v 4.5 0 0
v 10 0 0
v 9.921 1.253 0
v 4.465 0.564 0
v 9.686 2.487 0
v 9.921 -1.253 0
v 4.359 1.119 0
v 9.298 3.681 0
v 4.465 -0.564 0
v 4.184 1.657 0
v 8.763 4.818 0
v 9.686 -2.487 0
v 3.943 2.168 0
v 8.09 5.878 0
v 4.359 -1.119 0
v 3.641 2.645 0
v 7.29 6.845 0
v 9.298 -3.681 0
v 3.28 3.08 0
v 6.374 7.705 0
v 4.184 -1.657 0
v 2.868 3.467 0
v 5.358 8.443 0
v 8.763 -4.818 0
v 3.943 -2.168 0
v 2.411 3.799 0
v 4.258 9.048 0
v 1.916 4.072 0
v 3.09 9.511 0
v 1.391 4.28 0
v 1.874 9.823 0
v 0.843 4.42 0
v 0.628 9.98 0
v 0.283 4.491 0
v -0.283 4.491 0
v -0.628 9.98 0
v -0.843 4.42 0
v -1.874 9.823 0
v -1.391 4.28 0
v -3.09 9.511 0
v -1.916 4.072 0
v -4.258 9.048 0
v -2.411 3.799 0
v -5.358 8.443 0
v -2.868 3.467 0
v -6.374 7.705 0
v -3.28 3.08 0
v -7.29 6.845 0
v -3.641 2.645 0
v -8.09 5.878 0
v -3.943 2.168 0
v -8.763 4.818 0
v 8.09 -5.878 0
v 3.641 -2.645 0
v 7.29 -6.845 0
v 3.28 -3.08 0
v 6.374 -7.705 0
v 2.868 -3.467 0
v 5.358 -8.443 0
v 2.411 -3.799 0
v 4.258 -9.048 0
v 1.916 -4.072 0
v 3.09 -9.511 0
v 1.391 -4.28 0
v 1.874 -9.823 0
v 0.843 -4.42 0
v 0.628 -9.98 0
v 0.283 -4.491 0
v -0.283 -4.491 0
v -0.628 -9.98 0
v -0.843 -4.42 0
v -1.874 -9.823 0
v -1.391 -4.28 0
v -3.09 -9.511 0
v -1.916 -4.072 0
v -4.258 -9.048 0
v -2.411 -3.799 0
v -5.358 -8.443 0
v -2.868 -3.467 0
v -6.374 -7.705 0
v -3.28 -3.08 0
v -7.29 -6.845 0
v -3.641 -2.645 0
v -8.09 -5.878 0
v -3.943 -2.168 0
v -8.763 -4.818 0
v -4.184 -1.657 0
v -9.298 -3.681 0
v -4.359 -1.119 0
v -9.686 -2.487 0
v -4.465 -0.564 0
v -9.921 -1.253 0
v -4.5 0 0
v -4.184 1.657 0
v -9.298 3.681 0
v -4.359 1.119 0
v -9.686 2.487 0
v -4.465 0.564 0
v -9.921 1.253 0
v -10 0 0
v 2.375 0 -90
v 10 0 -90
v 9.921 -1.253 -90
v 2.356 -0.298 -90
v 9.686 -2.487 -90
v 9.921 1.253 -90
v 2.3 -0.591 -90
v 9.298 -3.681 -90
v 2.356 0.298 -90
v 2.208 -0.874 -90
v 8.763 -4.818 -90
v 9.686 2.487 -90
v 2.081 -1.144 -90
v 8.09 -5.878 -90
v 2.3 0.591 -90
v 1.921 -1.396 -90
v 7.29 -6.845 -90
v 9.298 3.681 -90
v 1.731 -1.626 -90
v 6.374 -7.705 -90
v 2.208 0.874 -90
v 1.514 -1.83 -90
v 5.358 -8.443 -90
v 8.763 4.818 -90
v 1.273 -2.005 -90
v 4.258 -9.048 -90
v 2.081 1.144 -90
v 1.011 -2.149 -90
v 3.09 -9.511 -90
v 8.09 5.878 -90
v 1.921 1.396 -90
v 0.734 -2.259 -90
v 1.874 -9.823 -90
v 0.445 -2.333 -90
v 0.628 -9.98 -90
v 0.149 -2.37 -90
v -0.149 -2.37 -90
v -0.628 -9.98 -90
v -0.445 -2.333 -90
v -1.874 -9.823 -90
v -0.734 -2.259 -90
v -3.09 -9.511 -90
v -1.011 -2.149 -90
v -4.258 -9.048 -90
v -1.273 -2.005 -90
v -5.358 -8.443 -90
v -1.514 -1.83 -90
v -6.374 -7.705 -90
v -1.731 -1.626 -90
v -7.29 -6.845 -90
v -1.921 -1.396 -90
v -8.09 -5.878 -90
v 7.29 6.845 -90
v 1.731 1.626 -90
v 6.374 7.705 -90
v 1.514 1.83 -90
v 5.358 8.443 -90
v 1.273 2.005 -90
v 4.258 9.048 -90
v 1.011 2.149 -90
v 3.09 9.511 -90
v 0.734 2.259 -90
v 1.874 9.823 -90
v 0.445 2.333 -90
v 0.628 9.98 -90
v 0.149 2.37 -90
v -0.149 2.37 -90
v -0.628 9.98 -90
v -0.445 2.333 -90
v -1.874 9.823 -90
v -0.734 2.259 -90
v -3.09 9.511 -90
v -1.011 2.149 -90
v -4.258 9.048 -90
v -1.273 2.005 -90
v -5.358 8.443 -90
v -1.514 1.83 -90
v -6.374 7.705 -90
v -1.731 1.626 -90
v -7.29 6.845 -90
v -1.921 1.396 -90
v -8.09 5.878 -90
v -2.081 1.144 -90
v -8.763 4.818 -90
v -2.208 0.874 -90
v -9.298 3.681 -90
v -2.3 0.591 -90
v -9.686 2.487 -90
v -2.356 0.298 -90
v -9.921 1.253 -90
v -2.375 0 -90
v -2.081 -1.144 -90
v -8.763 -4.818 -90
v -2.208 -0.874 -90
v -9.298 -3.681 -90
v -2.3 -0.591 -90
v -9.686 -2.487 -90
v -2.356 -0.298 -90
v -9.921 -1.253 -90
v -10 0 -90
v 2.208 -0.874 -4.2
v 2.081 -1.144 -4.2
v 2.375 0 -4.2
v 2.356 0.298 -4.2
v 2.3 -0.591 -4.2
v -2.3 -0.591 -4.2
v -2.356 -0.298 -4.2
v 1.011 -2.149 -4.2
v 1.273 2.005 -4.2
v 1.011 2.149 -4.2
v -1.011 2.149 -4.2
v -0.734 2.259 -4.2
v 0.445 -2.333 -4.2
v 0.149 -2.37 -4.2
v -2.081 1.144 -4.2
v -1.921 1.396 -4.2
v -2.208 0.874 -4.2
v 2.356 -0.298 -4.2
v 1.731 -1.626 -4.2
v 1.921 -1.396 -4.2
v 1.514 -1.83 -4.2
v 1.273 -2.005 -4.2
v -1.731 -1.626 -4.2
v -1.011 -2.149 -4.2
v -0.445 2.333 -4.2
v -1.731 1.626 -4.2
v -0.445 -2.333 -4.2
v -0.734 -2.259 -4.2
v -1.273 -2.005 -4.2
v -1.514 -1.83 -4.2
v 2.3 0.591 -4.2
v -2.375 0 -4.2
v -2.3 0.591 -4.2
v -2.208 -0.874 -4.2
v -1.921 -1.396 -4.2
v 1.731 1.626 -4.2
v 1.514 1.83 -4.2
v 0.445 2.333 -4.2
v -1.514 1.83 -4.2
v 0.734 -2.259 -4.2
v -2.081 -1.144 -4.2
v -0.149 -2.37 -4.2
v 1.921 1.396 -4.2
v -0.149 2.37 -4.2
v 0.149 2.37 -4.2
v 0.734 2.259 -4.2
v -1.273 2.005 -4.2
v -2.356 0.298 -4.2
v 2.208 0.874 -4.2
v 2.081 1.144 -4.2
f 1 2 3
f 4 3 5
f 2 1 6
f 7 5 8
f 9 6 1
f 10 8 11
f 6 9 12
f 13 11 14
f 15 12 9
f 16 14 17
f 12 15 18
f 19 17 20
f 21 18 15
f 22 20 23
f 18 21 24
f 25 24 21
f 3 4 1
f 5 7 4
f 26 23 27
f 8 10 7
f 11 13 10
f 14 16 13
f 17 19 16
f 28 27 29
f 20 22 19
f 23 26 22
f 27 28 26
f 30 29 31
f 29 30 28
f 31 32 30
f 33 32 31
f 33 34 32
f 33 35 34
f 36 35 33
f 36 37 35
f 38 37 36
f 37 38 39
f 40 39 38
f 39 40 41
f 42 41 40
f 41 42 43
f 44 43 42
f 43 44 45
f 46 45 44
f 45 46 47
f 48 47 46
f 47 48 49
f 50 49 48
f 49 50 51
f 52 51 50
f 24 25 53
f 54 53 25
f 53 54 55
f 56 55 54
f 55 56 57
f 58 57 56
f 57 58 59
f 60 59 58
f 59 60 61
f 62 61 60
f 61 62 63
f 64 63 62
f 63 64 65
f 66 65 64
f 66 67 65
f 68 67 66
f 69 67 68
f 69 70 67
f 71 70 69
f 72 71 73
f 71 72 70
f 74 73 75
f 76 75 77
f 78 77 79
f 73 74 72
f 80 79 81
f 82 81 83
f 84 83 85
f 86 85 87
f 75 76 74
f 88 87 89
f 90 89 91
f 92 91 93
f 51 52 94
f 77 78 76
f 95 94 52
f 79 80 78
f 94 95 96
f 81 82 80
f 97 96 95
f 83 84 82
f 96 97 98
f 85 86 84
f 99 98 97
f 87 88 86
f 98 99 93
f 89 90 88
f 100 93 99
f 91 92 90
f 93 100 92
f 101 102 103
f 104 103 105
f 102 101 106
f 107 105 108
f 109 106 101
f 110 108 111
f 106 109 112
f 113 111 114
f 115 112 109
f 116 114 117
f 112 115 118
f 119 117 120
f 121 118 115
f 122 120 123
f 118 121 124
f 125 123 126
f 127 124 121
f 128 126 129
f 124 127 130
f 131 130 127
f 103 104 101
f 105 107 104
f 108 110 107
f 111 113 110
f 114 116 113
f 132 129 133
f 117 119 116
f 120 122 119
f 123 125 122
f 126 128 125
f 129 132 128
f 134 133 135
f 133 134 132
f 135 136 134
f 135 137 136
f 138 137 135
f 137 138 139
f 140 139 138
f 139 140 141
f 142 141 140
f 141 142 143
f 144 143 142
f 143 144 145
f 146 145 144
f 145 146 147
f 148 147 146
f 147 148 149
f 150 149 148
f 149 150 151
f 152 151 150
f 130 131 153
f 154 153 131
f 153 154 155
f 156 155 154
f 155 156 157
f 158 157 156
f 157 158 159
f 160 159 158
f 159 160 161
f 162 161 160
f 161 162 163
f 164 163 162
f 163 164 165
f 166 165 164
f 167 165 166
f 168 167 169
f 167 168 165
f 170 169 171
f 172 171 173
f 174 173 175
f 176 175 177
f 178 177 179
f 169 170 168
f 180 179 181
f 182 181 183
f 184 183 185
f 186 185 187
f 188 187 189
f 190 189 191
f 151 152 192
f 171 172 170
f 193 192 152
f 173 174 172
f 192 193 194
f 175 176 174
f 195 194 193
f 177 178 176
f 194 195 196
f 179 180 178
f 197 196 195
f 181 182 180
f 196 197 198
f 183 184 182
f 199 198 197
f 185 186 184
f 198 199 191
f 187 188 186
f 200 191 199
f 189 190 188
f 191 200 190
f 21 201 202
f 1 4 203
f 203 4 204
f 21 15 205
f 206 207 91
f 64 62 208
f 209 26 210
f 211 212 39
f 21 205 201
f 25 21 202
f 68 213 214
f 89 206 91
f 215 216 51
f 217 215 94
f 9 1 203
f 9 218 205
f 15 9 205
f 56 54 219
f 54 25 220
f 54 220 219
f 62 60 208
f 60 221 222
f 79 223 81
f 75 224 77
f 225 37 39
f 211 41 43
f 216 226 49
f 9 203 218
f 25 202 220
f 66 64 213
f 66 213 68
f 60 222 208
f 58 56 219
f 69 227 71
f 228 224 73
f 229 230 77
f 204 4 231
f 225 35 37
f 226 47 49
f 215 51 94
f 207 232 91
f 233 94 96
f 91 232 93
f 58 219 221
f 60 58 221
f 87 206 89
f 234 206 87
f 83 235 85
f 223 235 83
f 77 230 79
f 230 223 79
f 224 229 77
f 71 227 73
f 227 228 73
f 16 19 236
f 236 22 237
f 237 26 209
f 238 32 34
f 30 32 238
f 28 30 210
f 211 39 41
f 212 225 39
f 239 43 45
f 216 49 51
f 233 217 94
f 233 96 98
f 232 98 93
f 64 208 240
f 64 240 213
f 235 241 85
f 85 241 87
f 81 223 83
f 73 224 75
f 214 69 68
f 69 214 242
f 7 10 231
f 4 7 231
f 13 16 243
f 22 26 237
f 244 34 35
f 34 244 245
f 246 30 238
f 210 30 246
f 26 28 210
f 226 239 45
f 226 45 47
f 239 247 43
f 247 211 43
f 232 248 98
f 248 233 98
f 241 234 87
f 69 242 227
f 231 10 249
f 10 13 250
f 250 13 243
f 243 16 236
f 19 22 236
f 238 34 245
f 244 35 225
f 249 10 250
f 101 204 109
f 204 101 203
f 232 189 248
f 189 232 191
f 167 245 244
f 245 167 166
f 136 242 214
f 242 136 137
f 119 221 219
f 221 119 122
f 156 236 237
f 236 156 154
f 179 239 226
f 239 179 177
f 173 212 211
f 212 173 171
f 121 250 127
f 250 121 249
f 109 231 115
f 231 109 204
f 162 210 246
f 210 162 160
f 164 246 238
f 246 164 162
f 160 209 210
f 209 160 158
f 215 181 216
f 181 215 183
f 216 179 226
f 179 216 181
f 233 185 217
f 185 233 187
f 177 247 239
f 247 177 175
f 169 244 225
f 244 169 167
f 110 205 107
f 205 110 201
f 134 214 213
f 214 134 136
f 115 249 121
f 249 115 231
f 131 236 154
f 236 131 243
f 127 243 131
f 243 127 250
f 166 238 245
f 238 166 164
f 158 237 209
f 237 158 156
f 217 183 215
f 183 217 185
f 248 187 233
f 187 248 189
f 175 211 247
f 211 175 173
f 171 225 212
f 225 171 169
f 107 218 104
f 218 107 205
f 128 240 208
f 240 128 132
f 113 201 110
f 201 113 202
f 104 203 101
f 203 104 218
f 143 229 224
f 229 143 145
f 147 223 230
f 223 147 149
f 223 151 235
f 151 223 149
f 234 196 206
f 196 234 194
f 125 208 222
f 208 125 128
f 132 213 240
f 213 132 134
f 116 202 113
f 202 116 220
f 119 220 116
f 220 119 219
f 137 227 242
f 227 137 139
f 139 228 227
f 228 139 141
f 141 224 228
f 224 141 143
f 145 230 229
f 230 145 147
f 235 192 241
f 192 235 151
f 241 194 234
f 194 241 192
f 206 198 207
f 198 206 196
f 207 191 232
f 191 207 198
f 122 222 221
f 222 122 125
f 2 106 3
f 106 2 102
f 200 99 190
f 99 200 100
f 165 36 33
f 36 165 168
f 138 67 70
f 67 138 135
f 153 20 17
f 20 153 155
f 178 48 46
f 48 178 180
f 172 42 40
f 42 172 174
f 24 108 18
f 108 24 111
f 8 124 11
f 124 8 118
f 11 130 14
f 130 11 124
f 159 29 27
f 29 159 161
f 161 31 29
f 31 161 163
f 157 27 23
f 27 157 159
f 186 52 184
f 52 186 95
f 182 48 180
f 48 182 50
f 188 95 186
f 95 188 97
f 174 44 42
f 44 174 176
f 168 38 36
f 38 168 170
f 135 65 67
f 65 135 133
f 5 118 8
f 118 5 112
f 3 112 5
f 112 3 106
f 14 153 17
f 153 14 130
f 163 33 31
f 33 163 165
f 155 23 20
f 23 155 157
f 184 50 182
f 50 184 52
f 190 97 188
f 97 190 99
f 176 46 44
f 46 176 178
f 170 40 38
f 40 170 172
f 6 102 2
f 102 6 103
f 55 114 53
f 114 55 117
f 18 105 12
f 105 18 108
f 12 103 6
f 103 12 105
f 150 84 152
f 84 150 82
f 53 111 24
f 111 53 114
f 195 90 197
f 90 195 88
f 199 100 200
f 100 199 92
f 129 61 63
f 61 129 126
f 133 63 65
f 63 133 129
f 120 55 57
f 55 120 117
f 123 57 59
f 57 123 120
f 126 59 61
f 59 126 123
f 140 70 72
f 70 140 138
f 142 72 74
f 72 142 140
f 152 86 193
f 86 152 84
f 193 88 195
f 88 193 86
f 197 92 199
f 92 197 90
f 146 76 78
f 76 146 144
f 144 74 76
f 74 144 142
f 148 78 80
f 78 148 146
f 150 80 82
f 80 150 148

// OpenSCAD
$fn = 50;


difference() {
	union() {
		translate(v = [0, 0, -90.0000000000]) {
			cylinder(h = 90, r = 10.0000000000);
		}
		cylinder(h = 0, r = 16.0000000000);
	}
	union() {
		translate(v = [0, 0, 0]) {
			rotate(a = [0, 0, 0]) {
				difference() {
					union() {
						#translate(v = [0, 0, -90.0000000000]) {
							cylinder(h = 90, r = 2.2500000000);
						}
						#translate(v = [0, 0, -4.2000000000]) {
							cylinder(h = 4.2000000000, r = 10.0000000000, r1 = 2.3750000000, r2 = 4.5000000000);
						}
						#translate(v = [0, 0, -90.0000000000]) {
							cylinder(h = 90, r = 2.3750000000);
						}
						#translate(v = [0, 0, -90.0000000000]) {
							cylinder(h = 90, r = 2.2500000000);
						}
					}
					union();
				}
			}
		}
	}
}
